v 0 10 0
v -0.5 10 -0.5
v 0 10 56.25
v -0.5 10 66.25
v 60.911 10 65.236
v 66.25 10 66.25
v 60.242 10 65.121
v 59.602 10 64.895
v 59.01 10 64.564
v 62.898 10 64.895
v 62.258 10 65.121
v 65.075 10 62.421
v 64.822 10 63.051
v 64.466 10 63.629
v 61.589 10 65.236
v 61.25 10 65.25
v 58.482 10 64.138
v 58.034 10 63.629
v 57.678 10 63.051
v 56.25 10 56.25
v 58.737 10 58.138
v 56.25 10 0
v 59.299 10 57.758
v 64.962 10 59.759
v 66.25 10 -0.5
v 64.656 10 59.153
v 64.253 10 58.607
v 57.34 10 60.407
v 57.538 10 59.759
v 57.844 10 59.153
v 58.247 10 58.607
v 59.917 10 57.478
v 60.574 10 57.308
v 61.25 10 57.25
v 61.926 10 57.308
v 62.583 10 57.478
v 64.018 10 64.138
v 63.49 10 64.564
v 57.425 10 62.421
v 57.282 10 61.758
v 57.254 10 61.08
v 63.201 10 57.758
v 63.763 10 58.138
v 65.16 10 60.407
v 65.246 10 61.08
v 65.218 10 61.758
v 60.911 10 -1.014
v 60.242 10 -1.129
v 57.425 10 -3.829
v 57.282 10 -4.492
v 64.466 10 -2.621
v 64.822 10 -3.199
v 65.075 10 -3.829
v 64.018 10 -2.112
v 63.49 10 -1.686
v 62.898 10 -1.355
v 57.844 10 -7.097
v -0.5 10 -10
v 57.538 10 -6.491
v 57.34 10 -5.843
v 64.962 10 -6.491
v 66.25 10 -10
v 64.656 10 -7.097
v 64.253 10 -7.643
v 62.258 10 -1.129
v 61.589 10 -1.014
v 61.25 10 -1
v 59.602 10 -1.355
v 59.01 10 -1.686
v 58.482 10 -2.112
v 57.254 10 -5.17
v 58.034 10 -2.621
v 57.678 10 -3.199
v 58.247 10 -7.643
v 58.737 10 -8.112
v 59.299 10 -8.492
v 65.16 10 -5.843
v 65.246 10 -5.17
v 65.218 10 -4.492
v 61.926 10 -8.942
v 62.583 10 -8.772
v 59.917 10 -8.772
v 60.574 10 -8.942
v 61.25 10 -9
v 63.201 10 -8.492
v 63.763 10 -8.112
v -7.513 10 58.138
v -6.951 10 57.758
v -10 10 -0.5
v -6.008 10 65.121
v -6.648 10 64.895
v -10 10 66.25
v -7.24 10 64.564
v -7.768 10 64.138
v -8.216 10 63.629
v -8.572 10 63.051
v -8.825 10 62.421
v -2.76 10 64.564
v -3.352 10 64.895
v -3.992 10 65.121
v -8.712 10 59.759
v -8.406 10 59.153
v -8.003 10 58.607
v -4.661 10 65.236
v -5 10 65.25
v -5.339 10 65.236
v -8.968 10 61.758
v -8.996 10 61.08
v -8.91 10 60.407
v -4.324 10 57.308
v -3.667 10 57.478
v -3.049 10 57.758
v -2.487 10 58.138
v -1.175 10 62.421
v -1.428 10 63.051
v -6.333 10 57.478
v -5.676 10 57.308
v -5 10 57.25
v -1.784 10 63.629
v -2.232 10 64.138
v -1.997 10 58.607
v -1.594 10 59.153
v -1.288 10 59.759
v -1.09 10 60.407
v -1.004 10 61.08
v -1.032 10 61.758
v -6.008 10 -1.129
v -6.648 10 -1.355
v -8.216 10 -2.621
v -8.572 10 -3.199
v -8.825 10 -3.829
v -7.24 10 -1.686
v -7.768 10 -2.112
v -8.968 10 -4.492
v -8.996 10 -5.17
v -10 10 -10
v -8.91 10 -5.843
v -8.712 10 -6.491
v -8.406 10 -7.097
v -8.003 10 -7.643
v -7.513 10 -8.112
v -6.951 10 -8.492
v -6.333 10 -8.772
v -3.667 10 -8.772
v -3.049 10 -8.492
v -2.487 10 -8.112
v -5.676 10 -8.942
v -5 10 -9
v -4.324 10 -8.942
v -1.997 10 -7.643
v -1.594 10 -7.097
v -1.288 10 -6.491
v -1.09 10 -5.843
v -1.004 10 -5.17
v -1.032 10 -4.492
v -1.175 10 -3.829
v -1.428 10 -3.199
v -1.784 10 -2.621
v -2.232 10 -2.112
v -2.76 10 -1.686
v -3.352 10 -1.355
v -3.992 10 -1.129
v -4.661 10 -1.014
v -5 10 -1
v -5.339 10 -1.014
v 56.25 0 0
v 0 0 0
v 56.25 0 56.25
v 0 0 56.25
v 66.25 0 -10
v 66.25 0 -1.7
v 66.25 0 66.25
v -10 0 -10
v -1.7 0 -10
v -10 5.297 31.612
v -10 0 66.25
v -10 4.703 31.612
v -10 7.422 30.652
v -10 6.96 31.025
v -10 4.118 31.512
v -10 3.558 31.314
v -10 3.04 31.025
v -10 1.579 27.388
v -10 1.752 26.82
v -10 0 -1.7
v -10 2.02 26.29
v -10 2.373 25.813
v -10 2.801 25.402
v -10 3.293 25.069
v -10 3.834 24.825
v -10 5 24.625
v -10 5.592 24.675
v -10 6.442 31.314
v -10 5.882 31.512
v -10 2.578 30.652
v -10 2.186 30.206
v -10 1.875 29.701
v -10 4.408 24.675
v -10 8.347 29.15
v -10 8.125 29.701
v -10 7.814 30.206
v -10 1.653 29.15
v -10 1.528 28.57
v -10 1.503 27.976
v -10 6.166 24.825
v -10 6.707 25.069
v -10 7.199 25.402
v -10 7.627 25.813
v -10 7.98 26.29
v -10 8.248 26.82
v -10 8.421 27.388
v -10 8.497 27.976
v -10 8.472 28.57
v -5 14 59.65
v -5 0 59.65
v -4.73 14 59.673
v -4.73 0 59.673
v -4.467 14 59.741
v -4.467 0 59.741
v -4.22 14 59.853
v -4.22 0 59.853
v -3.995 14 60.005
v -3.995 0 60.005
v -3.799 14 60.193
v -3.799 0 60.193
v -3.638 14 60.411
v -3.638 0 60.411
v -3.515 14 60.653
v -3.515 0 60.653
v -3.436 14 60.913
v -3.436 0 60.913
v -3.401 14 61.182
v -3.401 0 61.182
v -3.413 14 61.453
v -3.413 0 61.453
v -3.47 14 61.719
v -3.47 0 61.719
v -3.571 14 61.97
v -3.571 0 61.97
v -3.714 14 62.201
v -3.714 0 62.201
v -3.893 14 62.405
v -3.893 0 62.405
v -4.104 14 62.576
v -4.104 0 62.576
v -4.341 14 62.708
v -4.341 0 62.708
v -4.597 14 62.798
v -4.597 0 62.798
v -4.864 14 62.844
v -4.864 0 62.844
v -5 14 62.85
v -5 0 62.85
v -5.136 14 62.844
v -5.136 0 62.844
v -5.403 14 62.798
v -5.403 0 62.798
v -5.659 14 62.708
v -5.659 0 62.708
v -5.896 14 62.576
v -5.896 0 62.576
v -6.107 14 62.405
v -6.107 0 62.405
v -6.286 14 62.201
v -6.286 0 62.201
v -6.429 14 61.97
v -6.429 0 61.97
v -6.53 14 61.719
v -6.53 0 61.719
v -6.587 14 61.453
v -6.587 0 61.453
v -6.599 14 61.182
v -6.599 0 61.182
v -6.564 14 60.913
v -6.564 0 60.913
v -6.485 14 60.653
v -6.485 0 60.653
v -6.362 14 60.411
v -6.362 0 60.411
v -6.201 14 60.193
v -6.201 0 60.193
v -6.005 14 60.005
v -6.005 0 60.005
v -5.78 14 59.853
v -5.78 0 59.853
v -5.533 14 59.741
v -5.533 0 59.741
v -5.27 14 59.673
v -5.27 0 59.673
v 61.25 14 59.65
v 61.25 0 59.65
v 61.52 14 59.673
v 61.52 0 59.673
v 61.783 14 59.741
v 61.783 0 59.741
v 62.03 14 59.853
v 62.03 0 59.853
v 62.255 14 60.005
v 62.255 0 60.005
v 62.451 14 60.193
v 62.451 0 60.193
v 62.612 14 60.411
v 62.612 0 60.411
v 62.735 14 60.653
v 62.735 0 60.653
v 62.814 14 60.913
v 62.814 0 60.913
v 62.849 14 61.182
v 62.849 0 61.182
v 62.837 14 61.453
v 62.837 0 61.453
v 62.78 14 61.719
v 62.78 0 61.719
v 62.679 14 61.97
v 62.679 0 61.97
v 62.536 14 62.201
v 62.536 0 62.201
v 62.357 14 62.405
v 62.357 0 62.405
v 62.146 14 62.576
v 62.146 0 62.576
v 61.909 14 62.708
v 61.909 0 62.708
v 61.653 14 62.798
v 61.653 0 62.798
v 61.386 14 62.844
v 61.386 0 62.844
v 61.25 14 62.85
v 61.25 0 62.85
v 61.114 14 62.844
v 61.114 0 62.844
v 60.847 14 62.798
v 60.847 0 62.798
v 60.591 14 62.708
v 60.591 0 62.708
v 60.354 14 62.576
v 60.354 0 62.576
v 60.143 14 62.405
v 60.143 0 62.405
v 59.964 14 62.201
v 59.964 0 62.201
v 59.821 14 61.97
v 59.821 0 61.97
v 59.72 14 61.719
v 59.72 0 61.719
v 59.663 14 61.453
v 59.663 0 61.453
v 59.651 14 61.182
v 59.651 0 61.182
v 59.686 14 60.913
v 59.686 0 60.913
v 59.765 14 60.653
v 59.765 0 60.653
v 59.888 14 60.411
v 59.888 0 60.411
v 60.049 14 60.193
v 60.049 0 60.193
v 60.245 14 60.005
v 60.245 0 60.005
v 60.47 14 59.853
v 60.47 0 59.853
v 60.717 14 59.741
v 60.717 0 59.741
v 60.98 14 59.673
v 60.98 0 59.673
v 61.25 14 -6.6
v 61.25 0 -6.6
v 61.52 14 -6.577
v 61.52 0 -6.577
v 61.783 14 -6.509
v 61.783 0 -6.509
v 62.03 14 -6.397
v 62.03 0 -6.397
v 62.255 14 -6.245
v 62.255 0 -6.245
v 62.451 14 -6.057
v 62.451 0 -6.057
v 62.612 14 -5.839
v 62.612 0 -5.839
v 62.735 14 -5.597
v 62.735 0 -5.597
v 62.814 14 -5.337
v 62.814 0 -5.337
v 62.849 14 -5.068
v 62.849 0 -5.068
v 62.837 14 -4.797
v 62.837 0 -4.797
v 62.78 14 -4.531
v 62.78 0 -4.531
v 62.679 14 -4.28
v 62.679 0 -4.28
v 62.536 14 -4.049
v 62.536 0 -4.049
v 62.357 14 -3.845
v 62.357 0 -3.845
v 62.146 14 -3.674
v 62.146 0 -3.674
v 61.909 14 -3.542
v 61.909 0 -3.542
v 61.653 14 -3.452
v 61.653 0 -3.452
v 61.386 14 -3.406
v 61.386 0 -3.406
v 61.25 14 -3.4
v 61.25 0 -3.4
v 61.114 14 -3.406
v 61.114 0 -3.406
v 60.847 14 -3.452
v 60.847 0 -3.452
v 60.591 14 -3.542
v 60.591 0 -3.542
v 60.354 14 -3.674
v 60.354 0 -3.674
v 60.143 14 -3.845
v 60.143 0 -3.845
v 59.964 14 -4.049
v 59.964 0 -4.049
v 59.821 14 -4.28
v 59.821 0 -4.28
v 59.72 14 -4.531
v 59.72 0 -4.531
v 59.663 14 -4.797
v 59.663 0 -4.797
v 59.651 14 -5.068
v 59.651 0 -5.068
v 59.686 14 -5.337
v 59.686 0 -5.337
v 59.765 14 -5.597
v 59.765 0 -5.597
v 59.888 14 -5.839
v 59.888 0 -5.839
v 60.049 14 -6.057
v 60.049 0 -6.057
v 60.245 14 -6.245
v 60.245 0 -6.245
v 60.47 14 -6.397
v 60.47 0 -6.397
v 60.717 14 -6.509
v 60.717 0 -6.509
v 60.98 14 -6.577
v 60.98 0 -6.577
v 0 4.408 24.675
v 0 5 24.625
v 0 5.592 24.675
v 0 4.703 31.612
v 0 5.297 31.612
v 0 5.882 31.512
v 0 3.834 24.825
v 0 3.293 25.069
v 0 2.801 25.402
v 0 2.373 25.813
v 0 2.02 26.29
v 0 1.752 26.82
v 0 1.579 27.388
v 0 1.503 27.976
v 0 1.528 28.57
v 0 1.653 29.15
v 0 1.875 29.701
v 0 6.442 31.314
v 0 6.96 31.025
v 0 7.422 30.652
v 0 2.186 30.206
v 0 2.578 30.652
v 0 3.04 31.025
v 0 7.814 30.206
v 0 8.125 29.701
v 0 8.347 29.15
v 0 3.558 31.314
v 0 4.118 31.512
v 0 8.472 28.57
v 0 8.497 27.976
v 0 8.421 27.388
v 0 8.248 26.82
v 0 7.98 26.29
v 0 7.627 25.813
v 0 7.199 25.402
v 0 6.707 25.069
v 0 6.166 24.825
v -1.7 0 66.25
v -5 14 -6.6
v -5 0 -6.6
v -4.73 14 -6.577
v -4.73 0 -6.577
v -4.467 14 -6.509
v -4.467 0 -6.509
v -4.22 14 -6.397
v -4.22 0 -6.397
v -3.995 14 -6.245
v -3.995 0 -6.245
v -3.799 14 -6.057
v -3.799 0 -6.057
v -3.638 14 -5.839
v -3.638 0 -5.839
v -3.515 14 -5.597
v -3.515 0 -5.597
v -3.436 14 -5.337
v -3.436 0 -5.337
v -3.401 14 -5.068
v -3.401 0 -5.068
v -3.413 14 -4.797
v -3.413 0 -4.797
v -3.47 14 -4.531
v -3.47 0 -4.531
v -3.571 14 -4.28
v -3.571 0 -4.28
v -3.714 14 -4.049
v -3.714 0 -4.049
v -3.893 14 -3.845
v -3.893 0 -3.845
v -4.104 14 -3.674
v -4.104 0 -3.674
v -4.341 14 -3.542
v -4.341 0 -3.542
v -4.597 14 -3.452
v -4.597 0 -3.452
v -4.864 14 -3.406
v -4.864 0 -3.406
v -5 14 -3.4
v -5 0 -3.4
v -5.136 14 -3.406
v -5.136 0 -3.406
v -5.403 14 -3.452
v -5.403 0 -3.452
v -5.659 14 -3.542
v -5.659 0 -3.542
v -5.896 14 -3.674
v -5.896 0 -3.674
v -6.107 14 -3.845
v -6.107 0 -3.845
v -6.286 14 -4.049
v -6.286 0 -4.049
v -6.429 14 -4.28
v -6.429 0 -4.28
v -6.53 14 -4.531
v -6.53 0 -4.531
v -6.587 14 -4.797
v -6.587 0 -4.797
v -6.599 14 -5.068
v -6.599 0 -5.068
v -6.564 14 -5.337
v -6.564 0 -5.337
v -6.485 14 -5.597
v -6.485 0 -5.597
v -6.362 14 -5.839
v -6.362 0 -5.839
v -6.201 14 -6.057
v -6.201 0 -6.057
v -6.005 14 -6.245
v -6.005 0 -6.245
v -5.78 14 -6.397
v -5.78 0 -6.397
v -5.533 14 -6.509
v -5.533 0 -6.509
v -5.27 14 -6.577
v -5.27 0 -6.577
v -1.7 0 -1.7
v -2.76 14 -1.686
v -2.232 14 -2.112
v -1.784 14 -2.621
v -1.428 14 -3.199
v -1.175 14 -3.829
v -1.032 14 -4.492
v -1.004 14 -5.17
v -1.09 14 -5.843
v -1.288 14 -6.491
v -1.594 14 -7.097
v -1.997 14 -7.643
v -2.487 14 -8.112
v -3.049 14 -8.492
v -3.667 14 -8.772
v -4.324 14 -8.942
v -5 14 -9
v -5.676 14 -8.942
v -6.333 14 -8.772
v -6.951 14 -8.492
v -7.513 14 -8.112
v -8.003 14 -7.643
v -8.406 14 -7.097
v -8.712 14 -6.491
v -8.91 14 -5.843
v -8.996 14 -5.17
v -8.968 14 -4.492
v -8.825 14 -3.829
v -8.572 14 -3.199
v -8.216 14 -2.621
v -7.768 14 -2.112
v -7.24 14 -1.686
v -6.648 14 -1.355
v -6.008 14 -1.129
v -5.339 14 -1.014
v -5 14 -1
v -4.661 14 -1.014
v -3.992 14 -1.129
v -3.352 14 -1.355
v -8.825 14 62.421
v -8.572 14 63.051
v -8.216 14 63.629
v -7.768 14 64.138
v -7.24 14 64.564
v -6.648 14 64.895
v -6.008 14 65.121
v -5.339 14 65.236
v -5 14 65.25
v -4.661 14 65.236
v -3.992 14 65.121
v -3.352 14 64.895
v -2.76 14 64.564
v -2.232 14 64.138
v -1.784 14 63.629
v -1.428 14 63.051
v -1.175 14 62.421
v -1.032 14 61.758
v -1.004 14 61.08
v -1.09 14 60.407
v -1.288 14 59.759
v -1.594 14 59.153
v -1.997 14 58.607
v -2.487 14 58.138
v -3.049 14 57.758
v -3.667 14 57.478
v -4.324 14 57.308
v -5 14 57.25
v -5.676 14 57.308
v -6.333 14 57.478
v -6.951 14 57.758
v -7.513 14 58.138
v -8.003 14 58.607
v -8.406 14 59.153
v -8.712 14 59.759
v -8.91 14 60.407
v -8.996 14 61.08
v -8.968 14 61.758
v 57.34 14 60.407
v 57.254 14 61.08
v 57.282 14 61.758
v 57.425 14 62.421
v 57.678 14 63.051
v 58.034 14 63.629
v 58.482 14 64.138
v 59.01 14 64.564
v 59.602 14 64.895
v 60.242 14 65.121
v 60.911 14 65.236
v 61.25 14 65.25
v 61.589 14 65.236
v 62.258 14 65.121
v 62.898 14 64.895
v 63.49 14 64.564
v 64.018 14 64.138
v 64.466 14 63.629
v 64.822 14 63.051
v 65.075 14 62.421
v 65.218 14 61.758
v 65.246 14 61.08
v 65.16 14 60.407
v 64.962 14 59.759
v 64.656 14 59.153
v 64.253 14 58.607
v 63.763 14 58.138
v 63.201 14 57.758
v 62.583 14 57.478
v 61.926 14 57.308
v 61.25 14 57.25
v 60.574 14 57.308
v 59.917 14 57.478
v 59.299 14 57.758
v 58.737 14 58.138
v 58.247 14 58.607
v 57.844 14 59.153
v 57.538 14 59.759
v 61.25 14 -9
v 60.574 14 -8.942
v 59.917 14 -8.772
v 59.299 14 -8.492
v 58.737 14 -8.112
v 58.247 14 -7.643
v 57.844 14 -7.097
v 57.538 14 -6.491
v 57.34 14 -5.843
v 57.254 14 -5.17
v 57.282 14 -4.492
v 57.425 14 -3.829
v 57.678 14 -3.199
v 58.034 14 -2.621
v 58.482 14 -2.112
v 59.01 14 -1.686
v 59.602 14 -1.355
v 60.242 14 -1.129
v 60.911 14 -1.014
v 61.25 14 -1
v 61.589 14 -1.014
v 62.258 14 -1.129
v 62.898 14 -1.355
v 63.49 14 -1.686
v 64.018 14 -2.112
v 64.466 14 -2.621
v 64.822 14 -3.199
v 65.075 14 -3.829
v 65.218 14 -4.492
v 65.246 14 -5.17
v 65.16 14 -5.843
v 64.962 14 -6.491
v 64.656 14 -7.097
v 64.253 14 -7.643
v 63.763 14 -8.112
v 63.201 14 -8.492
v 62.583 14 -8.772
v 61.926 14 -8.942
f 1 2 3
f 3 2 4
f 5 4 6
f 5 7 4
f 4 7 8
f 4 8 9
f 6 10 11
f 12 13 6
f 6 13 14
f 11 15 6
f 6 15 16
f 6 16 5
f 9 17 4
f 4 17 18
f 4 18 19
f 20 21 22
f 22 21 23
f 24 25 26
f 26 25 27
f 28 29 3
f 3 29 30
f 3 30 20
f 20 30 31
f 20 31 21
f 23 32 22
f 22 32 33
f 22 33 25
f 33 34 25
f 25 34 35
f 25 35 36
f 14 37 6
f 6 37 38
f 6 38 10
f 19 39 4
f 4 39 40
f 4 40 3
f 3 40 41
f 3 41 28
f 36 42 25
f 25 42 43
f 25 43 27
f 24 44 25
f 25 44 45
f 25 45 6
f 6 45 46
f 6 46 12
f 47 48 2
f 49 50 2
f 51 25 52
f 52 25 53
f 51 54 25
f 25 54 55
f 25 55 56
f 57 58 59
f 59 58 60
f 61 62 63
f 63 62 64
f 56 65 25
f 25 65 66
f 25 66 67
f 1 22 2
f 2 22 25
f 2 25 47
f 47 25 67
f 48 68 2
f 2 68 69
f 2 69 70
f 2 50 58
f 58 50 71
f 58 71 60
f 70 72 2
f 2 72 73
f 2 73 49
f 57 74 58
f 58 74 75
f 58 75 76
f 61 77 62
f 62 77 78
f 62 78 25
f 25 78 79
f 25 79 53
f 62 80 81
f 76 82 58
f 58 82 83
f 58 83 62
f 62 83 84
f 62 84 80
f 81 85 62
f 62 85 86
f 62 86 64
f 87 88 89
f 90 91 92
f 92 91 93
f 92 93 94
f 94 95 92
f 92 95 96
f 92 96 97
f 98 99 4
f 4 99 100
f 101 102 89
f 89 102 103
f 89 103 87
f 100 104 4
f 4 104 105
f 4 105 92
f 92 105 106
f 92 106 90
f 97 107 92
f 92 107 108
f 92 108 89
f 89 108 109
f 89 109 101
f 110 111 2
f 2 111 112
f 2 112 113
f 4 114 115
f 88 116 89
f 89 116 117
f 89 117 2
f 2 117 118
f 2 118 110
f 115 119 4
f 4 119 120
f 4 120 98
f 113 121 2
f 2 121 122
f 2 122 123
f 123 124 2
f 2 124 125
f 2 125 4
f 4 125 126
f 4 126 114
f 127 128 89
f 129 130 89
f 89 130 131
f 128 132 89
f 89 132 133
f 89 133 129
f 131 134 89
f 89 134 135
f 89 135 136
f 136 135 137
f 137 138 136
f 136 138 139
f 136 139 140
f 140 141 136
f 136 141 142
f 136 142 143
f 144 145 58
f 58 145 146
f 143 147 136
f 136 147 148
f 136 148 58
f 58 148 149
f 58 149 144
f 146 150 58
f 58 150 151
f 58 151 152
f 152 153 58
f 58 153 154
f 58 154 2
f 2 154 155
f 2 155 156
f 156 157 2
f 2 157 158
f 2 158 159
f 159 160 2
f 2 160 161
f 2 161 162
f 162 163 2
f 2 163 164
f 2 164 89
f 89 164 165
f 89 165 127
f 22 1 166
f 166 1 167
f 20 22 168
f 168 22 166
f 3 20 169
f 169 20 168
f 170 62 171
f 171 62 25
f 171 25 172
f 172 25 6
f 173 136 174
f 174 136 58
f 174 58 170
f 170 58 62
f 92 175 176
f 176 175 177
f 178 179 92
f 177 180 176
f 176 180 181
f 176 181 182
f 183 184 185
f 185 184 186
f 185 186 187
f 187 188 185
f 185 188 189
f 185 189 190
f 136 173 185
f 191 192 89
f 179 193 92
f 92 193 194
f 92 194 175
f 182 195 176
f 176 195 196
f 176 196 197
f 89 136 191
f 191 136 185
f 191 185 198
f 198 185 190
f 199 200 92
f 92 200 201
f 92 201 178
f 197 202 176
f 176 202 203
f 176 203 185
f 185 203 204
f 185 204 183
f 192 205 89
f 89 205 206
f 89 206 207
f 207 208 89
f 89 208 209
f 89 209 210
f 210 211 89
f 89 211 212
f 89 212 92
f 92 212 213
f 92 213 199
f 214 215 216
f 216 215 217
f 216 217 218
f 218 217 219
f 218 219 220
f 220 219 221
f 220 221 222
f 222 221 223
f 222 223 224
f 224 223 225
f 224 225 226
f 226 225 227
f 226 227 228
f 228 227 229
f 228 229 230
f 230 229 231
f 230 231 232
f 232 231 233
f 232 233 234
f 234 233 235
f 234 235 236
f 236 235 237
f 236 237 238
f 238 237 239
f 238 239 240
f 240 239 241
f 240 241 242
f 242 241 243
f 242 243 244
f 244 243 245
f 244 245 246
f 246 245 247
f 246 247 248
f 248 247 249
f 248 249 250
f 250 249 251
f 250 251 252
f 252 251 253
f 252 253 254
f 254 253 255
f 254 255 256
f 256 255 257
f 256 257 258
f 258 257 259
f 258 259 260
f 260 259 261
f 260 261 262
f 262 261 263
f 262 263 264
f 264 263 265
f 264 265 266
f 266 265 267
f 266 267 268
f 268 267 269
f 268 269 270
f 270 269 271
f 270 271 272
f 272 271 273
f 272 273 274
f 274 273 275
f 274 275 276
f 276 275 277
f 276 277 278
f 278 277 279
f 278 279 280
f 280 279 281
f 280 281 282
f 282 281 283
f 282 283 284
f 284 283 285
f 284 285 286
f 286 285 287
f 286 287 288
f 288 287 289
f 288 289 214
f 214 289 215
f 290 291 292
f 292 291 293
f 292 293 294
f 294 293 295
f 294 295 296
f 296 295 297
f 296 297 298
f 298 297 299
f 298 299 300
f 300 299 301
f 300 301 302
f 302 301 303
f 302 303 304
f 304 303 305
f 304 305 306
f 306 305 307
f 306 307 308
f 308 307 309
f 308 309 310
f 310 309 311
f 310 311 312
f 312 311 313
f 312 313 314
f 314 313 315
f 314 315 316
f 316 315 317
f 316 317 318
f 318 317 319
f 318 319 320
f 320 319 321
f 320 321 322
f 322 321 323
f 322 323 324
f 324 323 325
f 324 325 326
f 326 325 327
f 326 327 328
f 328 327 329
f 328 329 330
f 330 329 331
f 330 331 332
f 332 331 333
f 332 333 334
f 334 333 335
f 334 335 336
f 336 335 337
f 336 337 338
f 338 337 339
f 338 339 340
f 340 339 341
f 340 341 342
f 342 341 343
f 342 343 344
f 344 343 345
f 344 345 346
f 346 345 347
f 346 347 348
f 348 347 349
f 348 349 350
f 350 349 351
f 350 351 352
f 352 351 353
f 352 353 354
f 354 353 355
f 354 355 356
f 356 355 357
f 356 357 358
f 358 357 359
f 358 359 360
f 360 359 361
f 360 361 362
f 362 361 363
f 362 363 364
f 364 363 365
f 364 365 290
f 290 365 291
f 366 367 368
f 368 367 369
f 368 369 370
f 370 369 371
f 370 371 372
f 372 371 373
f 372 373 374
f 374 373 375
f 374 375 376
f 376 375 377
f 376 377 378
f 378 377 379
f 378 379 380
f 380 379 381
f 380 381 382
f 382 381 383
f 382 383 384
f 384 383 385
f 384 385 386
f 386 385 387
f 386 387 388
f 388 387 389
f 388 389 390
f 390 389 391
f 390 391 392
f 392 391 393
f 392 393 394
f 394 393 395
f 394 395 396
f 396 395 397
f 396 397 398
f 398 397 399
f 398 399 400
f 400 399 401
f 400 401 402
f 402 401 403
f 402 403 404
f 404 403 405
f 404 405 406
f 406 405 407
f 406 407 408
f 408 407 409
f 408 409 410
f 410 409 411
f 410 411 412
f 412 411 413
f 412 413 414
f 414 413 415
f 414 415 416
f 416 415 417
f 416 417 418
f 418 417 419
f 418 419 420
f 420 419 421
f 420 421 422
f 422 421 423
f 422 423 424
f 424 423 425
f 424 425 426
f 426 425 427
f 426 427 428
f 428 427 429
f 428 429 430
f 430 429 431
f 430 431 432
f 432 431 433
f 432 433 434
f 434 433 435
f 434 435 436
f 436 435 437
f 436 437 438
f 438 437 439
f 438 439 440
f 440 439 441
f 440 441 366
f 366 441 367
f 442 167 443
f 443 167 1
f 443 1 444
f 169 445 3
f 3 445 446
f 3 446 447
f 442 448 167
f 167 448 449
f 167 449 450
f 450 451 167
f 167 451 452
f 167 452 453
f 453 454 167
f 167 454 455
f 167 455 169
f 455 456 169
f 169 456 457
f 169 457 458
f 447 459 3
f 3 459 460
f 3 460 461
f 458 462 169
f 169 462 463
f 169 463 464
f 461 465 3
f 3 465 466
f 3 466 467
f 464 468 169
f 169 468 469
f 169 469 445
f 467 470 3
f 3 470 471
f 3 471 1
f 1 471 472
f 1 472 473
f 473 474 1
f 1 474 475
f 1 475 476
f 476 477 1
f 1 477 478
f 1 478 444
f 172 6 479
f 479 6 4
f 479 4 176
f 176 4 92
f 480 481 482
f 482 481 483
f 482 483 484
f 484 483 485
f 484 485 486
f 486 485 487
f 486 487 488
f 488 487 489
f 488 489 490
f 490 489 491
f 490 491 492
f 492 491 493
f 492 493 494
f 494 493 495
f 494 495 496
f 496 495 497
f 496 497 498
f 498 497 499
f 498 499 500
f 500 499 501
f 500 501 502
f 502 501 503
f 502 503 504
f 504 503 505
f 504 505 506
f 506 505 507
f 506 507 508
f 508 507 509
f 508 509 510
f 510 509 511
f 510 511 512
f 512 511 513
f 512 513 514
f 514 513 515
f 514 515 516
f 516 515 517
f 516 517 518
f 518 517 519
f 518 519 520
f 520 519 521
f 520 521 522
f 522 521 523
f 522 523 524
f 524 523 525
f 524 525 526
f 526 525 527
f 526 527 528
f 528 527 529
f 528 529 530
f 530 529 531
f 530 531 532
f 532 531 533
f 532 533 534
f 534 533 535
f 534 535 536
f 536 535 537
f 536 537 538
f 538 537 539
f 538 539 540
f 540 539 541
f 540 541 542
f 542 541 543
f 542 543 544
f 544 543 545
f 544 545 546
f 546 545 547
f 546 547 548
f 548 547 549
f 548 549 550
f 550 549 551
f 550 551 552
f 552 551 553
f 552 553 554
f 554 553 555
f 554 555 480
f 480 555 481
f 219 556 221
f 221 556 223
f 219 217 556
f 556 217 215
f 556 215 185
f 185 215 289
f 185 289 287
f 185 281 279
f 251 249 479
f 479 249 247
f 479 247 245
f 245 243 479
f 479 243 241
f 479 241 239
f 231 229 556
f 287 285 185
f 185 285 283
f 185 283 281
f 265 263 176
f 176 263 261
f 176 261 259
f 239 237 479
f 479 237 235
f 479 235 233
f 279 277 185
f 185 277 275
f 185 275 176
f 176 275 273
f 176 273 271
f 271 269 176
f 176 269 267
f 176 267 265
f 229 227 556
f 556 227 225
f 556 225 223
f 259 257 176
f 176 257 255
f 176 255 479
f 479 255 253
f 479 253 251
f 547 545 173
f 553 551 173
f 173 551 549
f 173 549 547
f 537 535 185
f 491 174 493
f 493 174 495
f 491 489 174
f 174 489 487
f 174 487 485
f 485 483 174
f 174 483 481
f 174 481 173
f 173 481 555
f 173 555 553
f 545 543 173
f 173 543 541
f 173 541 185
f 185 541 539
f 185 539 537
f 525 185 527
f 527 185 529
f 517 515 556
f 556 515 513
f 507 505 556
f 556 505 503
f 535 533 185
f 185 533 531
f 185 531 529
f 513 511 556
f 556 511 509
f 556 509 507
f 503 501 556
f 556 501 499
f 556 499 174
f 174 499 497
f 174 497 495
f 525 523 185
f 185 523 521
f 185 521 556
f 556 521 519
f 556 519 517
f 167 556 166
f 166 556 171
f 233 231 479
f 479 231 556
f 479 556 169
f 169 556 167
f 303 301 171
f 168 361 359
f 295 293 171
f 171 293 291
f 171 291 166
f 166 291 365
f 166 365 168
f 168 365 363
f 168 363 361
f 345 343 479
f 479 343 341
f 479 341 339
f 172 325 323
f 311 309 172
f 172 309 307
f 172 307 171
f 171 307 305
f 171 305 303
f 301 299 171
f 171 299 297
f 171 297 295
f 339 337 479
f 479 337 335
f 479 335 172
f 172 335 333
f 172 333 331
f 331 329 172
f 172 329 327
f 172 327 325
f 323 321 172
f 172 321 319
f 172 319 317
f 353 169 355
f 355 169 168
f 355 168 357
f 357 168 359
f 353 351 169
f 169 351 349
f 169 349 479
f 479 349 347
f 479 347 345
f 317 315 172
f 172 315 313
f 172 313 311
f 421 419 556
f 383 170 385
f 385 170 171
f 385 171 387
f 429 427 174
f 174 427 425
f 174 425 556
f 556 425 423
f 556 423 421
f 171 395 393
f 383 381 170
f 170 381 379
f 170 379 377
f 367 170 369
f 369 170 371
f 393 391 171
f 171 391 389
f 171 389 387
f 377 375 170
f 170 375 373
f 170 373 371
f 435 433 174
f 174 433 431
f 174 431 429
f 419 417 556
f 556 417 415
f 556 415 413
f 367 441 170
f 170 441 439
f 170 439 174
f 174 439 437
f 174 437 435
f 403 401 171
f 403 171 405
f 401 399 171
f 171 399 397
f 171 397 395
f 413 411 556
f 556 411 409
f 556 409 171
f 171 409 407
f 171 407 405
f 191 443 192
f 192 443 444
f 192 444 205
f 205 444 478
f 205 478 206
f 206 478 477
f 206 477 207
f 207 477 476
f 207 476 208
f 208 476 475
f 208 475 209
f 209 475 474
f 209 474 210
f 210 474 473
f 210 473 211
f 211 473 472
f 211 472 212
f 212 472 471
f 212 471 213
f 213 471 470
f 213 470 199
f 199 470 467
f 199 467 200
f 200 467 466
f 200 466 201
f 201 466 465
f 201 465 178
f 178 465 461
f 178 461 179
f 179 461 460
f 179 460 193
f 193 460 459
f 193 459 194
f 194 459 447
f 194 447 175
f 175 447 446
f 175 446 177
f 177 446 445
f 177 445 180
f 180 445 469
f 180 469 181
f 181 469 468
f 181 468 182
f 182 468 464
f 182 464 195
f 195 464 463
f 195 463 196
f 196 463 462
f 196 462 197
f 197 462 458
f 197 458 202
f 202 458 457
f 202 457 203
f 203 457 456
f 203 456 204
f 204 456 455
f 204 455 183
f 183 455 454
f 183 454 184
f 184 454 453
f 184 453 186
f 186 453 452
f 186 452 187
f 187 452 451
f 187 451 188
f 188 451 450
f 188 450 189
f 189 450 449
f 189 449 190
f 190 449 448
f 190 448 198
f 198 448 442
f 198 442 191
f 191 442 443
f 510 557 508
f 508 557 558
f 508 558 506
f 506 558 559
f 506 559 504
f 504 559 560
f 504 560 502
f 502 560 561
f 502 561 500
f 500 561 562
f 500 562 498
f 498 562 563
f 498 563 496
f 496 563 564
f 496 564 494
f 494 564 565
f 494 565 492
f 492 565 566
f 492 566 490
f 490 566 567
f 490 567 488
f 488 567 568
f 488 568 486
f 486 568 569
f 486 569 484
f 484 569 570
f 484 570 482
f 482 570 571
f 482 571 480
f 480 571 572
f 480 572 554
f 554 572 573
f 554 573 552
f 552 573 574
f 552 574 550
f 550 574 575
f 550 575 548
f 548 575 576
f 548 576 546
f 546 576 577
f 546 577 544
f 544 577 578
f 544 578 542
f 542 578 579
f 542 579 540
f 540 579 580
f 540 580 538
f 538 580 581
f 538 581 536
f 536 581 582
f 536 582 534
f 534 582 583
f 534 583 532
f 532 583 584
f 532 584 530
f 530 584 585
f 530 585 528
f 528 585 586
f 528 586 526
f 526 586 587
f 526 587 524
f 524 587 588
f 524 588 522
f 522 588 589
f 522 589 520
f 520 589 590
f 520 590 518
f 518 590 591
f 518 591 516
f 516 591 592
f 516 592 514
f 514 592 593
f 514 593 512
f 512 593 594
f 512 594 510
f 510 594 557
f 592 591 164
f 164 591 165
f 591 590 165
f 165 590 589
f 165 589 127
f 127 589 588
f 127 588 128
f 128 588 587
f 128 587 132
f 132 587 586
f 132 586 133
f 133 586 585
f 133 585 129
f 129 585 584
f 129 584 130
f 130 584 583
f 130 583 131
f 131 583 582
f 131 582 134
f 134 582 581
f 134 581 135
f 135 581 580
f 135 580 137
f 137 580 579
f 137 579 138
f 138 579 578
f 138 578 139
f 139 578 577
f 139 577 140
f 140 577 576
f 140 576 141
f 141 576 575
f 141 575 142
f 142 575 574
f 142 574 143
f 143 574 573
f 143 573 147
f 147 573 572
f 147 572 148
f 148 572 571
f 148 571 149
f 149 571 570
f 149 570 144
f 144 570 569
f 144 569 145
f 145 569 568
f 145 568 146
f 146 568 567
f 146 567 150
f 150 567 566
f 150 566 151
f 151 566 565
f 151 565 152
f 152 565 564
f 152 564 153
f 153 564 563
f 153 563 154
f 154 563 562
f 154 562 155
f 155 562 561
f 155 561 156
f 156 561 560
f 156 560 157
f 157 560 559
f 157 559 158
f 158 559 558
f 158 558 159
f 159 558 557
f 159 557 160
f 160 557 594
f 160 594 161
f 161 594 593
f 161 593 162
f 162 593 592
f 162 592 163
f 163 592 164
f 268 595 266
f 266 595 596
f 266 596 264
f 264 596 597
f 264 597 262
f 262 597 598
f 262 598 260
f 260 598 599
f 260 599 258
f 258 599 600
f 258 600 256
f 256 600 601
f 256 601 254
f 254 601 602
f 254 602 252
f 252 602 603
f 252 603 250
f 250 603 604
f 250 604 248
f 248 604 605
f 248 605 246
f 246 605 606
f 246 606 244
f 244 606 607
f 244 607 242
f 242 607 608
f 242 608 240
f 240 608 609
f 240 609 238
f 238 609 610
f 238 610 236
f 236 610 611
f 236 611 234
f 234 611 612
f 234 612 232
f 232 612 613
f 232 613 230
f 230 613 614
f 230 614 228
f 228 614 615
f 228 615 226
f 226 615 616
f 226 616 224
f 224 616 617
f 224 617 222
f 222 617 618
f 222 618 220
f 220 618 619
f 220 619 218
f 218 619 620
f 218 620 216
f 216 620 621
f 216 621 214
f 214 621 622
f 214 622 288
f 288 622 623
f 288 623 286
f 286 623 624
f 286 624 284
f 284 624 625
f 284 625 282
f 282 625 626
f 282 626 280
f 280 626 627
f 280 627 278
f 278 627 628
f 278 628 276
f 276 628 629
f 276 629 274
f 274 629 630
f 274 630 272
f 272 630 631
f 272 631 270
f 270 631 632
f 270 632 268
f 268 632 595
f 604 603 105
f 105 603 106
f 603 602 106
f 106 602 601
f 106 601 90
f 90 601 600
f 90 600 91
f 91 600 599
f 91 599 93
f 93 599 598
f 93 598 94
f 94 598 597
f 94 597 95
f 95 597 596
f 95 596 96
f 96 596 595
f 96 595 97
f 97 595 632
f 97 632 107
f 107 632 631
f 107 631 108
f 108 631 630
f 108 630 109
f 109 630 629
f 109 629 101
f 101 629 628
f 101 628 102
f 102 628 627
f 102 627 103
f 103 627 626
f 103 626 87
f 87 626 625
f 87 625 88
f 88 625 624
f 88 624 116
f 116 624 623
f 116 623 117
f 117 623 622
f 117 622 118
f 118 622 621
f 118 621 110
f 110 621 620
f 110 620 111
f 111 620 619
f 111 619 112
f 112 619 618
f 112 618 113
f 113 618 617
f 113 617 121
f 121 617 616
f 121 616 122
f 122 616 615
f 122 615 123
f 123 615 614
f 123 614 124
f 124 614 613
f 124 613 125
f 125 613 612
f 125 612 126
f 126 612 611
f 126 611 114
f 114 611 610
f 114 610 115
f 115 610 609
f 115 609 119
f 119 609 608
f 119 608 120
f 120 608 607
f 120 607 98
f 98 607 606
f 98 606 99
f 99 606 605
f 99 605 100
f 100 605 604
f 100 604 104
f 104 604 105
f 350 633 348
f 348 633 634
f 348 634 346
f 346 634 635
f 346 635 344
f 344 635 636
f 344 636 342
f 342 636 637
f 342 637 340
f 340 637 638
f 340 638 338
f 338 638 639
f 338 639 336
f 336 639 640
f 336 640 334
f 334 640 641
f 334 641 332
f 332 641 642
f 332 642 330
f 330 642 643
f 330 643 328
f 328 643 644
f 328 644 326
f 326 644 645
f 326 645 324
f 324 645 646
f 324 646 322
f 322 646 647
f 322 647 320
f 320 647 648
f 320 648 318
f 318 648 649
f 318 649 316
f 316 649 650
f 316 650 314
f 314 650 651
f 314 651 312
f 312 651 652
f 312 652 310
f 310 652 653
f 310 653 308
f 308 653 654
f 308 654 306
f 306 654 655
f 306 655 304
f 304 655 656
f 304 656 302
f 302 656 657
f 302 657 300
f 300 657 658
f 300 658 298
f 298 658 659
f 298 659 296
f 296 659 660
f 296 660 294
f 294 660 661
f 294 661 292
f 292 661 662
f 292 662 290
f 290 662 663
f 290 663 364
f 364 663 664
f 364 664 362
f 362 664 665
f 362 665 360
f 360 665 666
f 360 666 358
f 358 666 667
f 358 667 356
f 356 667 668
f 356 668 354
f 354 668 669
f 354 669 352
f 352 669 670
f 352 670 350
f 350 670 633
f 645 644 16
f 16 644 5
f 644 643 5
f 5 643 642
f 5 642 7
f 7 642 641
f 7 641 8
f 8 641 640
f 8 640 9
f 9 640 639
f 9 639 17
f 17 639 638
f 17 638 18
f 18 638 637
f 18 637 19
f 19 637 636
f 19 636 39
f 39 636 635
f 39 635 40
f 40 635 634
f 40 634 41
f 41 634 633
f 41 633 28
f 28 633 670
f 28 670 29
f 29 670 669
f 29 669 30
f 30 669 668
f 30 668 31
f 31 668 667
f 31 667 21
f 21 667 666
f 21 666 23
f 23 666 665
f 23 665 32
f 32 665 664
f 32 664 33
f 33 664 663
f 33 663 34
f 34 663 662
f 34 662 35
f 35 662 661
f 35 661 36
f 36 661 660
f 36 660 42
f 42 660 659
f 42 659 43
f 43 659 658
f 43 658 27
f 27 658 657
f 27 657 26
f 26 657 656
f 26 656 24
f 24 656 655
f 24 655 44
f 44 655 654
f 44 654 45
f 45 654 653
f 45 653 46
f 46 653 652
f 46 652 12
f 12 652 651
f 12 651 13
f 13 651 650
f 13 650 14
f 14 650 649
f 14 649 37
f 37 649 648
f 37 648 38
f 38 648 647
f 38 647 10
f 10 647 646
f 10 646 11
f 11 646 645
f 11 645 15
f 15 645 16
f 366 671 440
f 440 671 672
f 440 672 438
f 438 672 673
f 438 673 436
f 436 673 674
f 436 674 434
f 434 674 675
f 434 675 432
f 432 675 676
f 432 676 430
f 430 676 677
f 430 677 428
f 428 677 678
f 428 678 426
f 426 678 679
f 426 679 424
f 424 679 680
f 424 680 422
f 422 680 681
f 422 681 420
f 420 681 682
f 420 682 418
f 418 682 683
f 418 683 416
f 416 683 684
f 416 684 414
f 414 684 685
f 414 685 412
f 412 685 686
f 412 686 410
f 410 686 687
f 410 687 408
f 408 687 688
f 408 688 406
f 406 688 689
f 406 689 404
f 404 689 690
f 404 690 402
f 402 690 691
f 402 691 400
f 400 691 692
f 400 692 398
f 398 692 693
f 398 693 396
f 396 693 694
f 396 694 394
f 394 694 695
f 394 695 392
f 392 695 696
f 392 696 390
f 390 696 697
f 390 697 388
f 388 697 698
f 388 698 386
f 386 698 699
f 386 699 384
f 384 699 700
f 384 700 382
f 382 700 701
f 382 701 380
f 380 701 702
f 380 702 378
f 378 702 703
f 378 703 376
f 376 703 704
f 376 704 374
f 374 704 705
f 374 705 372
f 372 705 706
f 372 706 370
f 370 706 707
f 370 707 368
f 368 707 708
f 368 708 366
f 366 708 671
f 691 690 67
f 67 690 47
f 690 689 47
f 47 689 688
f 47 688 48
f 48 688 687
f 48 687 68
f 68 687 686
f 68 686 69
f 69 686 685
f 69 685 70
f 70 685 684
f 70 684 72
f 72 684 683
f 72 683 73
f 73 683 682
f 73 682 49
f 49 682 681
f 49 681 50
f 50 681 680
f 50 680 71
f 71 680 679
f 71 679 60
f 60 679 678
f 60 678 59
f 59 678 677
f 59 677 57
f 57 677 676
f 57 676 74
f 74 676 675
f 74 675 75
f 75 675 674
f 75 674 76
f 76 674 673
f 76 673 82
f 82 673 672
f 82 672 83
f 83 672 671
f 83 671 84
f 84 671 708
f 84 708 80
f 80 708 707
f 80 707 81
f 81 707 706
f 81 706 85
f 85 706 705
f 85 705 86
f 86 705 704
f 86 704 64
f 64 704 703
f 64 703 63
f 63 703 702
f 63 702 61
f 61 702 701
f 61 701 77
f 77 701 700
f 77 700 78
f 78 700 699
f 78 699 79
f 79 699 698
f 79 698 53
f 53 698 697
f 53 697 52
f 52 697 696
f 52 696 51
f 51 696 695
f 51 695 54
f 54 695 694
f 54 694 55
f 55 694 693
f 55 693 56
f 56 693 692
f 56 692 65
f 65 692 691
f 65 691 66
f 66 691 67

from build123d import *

# Parameters (mm, degrees)
SKETCH1_W           = 76.25
SKETCH1_H           = 76.25
SKETCH1_R           = 4
SKETCH1_W_2         = 56.25
SKETCH1_H_2         = 56.25
SKETCH1_R_2         = 1.6
BOSS_EXTRUDE1_DEPTH = 10
SKETCH2_R           = 3.5
CUT_EXTRUDE1_DEPTH  = 10
BOSS_EXTRUDE2_START = 10
SKETCH1_3_R         = 4
SKETCH1_3_R_2       = 1.6
BOSS_EXTRUDE2_DEPTH = 4


with BuildPart() as part:
    # Sketch1 → Boss-Extrude1 (new body)
    # profile 1 of 5: a face of its own
    with BuildSketch(Plane(origin=(0, 0, 0), x_dir=(1, 0, 0), z_dir=(0, 1, 0))):
        with Locations((28.125, -28.125)):
            Rectangle(SKETCH1_W, SKETCH1_H)
        with Locations((-5, 5)):
            Circle(SKETCH1_R, mode=Mode.SUBTRACT)
        with Locations((-5, -61.25)):
            Circle(SKETCH1_R, mode=Mode.SUBTRACT)
        with Locations((61.25, -61.25)):
            Circle(SKETCH1_R, mode=Mode.SUBTRACT)
        with Locations((61.25, 5)):
            Circle(SKETCH1_R, mode=Mode.SUBTRACT)
        with Locations((28.125, -28.125)):
            Rectangle(SKETCH1_W_2, SKETCH1_H_2, mode=Mode.SUBTRACT)
    # profile 2 of 5: a face of its own
    with BuildSketch(Plane(origin=(0, 0, 0), x_dir=(1, 0, 0), z_dir=(0, 1, 0))):
        with Locations((61.25, 5)):
            Circle(SKETCH1_R)
        with Locations(Location((61.25, 5, 0), (0, 0, 270))):
            Circle(SKETCH1_R_2, mode=Mode.SUBTRACT)
    # profile 3 of 5: a face of its own
    with BuildSketch(Plane(origin=(0, 0, 0), x_dir=(1, 0, 0), z_dir=(0, 1, 0))):
        with Locations((61.25, -61.25)):
            Circle(SKETCH1_R)
        with Locations(Location((61.25, -61.25, 0), (0, 0, 270))):
            Circle(SKETCH1_R_2, mode=Mode.SUBTRACT)
    # profile 4 of 5: a face of its own
    with BuildSketch(Plane(origin=(0, 0, 0), x_dir=(1, 0, 0), z_dir=(0, 1, 0))):
        with Locations((-5, -61.25)):
            Circle(SKETCH1_R)
        with Locations(Location((-5, -61.25, 0), (0, 0, 270))):
            Circle(SKETCH1_R_2, mode=Mode.SUBTRACT)
    # profile 5 of 5: a face of its own
    with BuildSketch(Plane(origin=(0, 0, 0), x_dir=(1, 0, 0), z_dir=(0, 1, 0))):
        with Locations((-5, 5)):
            Circle(SKETCH1_R)
        with Locations(Location((-5, 5, 0), (0, 0, 270))):
            Circle(SKETCH1_R_2, mode=Mode.SUBTRACT)
    extrude(amount=BOSS_EXTRUDE1_DEPTH)

    # Sketch2 → Cut-Extrude1 (cut)
    with BuildSketch(Plane(origin=(0, 0, 0), x_dir=(0, 0, -1), z_dir=(1, 0, 0))):
        with Locations((-28.125, 5)):
            Circle(SKETCH2_R)
    extrude(amount=-CUT_EXTRUDE1_DEPTH, mode=Mode.SUBTRACT)

    # Sketch1<3> → Boss-Extrude2 (add)
    # profile 1 of 4: a face of its own
    with BuildSketch(Plane(origin=(0, 0, 0), x_dir=(1, 0, 0), z_dir=(0, 1, 0)).offset(BOSS_EXTRUDE2_START)):
        with Locations(Location((-5, 5, 0), (0, 0, 270))):
            Circle(SKETCH1_3_R)
        with Locations(Location((-5, 5, 0), (0, 0, 270))):
            Circle(SKETCH1_3_R_2, mode=Mode.SUBTRACT)
    # profile 2 of 4: a face of its own
    with BuildSketch(Plane(origin=(0, 0, 0), x_dir=(1, 0, 0), z_dir=(0, 1, 0)).offset(BOSS_EXTRUDE2_START)):
        with Locations(Location((-5, -61.25, 0), (0, 0, 270))):
            Circle(SKETCH1_3_R)
        with Locations(Location((-5, -61.25, 0), (0, 0, 270))):
            Circle(SKETCH1_3_R_2, mode=Mode.SUBTRACT)
    # profile 3 of 4: a face of its own
    with BuildSketch(Plane(origin=(0, 0, 0), x_dir=(1, 0, 0), z_dir=(0, 1, 0)).offset(BOSS_EXTRUDE2_START)):
        with Locations(Location((61.25, -61.25, 0), (0, 0, 270))):
            Circle(SKETCH1_3_R)
        with Locations(Location((61.25, -61.25, 0), (0, 0, 270))):
            Circle(SKETCH1_3_R_2, mode=Mode.SUBTRACT)
    # profile 4 of 4: a face of its own
    with BuildSketch(Plane(origin=(0, 0, 0), x_dir=(1, 0, 0), z_dir=(0, 1, 0)).offset(BOSS_EXTRUDE2_START)):
        with Locations(Location((61.25, 5, 0), (0, 0, 270))):
            Circle(SKETCH1_3_R)
        with Locations(Location((61.25, 5, 0), (0, 0, 270))):
            Circle(SKETCH1_3_R_2, mode=Mode.SUBTRACT)
    extrude(amount=BOSS_EXTRUDE2_DEPTH)


solid = part.part
